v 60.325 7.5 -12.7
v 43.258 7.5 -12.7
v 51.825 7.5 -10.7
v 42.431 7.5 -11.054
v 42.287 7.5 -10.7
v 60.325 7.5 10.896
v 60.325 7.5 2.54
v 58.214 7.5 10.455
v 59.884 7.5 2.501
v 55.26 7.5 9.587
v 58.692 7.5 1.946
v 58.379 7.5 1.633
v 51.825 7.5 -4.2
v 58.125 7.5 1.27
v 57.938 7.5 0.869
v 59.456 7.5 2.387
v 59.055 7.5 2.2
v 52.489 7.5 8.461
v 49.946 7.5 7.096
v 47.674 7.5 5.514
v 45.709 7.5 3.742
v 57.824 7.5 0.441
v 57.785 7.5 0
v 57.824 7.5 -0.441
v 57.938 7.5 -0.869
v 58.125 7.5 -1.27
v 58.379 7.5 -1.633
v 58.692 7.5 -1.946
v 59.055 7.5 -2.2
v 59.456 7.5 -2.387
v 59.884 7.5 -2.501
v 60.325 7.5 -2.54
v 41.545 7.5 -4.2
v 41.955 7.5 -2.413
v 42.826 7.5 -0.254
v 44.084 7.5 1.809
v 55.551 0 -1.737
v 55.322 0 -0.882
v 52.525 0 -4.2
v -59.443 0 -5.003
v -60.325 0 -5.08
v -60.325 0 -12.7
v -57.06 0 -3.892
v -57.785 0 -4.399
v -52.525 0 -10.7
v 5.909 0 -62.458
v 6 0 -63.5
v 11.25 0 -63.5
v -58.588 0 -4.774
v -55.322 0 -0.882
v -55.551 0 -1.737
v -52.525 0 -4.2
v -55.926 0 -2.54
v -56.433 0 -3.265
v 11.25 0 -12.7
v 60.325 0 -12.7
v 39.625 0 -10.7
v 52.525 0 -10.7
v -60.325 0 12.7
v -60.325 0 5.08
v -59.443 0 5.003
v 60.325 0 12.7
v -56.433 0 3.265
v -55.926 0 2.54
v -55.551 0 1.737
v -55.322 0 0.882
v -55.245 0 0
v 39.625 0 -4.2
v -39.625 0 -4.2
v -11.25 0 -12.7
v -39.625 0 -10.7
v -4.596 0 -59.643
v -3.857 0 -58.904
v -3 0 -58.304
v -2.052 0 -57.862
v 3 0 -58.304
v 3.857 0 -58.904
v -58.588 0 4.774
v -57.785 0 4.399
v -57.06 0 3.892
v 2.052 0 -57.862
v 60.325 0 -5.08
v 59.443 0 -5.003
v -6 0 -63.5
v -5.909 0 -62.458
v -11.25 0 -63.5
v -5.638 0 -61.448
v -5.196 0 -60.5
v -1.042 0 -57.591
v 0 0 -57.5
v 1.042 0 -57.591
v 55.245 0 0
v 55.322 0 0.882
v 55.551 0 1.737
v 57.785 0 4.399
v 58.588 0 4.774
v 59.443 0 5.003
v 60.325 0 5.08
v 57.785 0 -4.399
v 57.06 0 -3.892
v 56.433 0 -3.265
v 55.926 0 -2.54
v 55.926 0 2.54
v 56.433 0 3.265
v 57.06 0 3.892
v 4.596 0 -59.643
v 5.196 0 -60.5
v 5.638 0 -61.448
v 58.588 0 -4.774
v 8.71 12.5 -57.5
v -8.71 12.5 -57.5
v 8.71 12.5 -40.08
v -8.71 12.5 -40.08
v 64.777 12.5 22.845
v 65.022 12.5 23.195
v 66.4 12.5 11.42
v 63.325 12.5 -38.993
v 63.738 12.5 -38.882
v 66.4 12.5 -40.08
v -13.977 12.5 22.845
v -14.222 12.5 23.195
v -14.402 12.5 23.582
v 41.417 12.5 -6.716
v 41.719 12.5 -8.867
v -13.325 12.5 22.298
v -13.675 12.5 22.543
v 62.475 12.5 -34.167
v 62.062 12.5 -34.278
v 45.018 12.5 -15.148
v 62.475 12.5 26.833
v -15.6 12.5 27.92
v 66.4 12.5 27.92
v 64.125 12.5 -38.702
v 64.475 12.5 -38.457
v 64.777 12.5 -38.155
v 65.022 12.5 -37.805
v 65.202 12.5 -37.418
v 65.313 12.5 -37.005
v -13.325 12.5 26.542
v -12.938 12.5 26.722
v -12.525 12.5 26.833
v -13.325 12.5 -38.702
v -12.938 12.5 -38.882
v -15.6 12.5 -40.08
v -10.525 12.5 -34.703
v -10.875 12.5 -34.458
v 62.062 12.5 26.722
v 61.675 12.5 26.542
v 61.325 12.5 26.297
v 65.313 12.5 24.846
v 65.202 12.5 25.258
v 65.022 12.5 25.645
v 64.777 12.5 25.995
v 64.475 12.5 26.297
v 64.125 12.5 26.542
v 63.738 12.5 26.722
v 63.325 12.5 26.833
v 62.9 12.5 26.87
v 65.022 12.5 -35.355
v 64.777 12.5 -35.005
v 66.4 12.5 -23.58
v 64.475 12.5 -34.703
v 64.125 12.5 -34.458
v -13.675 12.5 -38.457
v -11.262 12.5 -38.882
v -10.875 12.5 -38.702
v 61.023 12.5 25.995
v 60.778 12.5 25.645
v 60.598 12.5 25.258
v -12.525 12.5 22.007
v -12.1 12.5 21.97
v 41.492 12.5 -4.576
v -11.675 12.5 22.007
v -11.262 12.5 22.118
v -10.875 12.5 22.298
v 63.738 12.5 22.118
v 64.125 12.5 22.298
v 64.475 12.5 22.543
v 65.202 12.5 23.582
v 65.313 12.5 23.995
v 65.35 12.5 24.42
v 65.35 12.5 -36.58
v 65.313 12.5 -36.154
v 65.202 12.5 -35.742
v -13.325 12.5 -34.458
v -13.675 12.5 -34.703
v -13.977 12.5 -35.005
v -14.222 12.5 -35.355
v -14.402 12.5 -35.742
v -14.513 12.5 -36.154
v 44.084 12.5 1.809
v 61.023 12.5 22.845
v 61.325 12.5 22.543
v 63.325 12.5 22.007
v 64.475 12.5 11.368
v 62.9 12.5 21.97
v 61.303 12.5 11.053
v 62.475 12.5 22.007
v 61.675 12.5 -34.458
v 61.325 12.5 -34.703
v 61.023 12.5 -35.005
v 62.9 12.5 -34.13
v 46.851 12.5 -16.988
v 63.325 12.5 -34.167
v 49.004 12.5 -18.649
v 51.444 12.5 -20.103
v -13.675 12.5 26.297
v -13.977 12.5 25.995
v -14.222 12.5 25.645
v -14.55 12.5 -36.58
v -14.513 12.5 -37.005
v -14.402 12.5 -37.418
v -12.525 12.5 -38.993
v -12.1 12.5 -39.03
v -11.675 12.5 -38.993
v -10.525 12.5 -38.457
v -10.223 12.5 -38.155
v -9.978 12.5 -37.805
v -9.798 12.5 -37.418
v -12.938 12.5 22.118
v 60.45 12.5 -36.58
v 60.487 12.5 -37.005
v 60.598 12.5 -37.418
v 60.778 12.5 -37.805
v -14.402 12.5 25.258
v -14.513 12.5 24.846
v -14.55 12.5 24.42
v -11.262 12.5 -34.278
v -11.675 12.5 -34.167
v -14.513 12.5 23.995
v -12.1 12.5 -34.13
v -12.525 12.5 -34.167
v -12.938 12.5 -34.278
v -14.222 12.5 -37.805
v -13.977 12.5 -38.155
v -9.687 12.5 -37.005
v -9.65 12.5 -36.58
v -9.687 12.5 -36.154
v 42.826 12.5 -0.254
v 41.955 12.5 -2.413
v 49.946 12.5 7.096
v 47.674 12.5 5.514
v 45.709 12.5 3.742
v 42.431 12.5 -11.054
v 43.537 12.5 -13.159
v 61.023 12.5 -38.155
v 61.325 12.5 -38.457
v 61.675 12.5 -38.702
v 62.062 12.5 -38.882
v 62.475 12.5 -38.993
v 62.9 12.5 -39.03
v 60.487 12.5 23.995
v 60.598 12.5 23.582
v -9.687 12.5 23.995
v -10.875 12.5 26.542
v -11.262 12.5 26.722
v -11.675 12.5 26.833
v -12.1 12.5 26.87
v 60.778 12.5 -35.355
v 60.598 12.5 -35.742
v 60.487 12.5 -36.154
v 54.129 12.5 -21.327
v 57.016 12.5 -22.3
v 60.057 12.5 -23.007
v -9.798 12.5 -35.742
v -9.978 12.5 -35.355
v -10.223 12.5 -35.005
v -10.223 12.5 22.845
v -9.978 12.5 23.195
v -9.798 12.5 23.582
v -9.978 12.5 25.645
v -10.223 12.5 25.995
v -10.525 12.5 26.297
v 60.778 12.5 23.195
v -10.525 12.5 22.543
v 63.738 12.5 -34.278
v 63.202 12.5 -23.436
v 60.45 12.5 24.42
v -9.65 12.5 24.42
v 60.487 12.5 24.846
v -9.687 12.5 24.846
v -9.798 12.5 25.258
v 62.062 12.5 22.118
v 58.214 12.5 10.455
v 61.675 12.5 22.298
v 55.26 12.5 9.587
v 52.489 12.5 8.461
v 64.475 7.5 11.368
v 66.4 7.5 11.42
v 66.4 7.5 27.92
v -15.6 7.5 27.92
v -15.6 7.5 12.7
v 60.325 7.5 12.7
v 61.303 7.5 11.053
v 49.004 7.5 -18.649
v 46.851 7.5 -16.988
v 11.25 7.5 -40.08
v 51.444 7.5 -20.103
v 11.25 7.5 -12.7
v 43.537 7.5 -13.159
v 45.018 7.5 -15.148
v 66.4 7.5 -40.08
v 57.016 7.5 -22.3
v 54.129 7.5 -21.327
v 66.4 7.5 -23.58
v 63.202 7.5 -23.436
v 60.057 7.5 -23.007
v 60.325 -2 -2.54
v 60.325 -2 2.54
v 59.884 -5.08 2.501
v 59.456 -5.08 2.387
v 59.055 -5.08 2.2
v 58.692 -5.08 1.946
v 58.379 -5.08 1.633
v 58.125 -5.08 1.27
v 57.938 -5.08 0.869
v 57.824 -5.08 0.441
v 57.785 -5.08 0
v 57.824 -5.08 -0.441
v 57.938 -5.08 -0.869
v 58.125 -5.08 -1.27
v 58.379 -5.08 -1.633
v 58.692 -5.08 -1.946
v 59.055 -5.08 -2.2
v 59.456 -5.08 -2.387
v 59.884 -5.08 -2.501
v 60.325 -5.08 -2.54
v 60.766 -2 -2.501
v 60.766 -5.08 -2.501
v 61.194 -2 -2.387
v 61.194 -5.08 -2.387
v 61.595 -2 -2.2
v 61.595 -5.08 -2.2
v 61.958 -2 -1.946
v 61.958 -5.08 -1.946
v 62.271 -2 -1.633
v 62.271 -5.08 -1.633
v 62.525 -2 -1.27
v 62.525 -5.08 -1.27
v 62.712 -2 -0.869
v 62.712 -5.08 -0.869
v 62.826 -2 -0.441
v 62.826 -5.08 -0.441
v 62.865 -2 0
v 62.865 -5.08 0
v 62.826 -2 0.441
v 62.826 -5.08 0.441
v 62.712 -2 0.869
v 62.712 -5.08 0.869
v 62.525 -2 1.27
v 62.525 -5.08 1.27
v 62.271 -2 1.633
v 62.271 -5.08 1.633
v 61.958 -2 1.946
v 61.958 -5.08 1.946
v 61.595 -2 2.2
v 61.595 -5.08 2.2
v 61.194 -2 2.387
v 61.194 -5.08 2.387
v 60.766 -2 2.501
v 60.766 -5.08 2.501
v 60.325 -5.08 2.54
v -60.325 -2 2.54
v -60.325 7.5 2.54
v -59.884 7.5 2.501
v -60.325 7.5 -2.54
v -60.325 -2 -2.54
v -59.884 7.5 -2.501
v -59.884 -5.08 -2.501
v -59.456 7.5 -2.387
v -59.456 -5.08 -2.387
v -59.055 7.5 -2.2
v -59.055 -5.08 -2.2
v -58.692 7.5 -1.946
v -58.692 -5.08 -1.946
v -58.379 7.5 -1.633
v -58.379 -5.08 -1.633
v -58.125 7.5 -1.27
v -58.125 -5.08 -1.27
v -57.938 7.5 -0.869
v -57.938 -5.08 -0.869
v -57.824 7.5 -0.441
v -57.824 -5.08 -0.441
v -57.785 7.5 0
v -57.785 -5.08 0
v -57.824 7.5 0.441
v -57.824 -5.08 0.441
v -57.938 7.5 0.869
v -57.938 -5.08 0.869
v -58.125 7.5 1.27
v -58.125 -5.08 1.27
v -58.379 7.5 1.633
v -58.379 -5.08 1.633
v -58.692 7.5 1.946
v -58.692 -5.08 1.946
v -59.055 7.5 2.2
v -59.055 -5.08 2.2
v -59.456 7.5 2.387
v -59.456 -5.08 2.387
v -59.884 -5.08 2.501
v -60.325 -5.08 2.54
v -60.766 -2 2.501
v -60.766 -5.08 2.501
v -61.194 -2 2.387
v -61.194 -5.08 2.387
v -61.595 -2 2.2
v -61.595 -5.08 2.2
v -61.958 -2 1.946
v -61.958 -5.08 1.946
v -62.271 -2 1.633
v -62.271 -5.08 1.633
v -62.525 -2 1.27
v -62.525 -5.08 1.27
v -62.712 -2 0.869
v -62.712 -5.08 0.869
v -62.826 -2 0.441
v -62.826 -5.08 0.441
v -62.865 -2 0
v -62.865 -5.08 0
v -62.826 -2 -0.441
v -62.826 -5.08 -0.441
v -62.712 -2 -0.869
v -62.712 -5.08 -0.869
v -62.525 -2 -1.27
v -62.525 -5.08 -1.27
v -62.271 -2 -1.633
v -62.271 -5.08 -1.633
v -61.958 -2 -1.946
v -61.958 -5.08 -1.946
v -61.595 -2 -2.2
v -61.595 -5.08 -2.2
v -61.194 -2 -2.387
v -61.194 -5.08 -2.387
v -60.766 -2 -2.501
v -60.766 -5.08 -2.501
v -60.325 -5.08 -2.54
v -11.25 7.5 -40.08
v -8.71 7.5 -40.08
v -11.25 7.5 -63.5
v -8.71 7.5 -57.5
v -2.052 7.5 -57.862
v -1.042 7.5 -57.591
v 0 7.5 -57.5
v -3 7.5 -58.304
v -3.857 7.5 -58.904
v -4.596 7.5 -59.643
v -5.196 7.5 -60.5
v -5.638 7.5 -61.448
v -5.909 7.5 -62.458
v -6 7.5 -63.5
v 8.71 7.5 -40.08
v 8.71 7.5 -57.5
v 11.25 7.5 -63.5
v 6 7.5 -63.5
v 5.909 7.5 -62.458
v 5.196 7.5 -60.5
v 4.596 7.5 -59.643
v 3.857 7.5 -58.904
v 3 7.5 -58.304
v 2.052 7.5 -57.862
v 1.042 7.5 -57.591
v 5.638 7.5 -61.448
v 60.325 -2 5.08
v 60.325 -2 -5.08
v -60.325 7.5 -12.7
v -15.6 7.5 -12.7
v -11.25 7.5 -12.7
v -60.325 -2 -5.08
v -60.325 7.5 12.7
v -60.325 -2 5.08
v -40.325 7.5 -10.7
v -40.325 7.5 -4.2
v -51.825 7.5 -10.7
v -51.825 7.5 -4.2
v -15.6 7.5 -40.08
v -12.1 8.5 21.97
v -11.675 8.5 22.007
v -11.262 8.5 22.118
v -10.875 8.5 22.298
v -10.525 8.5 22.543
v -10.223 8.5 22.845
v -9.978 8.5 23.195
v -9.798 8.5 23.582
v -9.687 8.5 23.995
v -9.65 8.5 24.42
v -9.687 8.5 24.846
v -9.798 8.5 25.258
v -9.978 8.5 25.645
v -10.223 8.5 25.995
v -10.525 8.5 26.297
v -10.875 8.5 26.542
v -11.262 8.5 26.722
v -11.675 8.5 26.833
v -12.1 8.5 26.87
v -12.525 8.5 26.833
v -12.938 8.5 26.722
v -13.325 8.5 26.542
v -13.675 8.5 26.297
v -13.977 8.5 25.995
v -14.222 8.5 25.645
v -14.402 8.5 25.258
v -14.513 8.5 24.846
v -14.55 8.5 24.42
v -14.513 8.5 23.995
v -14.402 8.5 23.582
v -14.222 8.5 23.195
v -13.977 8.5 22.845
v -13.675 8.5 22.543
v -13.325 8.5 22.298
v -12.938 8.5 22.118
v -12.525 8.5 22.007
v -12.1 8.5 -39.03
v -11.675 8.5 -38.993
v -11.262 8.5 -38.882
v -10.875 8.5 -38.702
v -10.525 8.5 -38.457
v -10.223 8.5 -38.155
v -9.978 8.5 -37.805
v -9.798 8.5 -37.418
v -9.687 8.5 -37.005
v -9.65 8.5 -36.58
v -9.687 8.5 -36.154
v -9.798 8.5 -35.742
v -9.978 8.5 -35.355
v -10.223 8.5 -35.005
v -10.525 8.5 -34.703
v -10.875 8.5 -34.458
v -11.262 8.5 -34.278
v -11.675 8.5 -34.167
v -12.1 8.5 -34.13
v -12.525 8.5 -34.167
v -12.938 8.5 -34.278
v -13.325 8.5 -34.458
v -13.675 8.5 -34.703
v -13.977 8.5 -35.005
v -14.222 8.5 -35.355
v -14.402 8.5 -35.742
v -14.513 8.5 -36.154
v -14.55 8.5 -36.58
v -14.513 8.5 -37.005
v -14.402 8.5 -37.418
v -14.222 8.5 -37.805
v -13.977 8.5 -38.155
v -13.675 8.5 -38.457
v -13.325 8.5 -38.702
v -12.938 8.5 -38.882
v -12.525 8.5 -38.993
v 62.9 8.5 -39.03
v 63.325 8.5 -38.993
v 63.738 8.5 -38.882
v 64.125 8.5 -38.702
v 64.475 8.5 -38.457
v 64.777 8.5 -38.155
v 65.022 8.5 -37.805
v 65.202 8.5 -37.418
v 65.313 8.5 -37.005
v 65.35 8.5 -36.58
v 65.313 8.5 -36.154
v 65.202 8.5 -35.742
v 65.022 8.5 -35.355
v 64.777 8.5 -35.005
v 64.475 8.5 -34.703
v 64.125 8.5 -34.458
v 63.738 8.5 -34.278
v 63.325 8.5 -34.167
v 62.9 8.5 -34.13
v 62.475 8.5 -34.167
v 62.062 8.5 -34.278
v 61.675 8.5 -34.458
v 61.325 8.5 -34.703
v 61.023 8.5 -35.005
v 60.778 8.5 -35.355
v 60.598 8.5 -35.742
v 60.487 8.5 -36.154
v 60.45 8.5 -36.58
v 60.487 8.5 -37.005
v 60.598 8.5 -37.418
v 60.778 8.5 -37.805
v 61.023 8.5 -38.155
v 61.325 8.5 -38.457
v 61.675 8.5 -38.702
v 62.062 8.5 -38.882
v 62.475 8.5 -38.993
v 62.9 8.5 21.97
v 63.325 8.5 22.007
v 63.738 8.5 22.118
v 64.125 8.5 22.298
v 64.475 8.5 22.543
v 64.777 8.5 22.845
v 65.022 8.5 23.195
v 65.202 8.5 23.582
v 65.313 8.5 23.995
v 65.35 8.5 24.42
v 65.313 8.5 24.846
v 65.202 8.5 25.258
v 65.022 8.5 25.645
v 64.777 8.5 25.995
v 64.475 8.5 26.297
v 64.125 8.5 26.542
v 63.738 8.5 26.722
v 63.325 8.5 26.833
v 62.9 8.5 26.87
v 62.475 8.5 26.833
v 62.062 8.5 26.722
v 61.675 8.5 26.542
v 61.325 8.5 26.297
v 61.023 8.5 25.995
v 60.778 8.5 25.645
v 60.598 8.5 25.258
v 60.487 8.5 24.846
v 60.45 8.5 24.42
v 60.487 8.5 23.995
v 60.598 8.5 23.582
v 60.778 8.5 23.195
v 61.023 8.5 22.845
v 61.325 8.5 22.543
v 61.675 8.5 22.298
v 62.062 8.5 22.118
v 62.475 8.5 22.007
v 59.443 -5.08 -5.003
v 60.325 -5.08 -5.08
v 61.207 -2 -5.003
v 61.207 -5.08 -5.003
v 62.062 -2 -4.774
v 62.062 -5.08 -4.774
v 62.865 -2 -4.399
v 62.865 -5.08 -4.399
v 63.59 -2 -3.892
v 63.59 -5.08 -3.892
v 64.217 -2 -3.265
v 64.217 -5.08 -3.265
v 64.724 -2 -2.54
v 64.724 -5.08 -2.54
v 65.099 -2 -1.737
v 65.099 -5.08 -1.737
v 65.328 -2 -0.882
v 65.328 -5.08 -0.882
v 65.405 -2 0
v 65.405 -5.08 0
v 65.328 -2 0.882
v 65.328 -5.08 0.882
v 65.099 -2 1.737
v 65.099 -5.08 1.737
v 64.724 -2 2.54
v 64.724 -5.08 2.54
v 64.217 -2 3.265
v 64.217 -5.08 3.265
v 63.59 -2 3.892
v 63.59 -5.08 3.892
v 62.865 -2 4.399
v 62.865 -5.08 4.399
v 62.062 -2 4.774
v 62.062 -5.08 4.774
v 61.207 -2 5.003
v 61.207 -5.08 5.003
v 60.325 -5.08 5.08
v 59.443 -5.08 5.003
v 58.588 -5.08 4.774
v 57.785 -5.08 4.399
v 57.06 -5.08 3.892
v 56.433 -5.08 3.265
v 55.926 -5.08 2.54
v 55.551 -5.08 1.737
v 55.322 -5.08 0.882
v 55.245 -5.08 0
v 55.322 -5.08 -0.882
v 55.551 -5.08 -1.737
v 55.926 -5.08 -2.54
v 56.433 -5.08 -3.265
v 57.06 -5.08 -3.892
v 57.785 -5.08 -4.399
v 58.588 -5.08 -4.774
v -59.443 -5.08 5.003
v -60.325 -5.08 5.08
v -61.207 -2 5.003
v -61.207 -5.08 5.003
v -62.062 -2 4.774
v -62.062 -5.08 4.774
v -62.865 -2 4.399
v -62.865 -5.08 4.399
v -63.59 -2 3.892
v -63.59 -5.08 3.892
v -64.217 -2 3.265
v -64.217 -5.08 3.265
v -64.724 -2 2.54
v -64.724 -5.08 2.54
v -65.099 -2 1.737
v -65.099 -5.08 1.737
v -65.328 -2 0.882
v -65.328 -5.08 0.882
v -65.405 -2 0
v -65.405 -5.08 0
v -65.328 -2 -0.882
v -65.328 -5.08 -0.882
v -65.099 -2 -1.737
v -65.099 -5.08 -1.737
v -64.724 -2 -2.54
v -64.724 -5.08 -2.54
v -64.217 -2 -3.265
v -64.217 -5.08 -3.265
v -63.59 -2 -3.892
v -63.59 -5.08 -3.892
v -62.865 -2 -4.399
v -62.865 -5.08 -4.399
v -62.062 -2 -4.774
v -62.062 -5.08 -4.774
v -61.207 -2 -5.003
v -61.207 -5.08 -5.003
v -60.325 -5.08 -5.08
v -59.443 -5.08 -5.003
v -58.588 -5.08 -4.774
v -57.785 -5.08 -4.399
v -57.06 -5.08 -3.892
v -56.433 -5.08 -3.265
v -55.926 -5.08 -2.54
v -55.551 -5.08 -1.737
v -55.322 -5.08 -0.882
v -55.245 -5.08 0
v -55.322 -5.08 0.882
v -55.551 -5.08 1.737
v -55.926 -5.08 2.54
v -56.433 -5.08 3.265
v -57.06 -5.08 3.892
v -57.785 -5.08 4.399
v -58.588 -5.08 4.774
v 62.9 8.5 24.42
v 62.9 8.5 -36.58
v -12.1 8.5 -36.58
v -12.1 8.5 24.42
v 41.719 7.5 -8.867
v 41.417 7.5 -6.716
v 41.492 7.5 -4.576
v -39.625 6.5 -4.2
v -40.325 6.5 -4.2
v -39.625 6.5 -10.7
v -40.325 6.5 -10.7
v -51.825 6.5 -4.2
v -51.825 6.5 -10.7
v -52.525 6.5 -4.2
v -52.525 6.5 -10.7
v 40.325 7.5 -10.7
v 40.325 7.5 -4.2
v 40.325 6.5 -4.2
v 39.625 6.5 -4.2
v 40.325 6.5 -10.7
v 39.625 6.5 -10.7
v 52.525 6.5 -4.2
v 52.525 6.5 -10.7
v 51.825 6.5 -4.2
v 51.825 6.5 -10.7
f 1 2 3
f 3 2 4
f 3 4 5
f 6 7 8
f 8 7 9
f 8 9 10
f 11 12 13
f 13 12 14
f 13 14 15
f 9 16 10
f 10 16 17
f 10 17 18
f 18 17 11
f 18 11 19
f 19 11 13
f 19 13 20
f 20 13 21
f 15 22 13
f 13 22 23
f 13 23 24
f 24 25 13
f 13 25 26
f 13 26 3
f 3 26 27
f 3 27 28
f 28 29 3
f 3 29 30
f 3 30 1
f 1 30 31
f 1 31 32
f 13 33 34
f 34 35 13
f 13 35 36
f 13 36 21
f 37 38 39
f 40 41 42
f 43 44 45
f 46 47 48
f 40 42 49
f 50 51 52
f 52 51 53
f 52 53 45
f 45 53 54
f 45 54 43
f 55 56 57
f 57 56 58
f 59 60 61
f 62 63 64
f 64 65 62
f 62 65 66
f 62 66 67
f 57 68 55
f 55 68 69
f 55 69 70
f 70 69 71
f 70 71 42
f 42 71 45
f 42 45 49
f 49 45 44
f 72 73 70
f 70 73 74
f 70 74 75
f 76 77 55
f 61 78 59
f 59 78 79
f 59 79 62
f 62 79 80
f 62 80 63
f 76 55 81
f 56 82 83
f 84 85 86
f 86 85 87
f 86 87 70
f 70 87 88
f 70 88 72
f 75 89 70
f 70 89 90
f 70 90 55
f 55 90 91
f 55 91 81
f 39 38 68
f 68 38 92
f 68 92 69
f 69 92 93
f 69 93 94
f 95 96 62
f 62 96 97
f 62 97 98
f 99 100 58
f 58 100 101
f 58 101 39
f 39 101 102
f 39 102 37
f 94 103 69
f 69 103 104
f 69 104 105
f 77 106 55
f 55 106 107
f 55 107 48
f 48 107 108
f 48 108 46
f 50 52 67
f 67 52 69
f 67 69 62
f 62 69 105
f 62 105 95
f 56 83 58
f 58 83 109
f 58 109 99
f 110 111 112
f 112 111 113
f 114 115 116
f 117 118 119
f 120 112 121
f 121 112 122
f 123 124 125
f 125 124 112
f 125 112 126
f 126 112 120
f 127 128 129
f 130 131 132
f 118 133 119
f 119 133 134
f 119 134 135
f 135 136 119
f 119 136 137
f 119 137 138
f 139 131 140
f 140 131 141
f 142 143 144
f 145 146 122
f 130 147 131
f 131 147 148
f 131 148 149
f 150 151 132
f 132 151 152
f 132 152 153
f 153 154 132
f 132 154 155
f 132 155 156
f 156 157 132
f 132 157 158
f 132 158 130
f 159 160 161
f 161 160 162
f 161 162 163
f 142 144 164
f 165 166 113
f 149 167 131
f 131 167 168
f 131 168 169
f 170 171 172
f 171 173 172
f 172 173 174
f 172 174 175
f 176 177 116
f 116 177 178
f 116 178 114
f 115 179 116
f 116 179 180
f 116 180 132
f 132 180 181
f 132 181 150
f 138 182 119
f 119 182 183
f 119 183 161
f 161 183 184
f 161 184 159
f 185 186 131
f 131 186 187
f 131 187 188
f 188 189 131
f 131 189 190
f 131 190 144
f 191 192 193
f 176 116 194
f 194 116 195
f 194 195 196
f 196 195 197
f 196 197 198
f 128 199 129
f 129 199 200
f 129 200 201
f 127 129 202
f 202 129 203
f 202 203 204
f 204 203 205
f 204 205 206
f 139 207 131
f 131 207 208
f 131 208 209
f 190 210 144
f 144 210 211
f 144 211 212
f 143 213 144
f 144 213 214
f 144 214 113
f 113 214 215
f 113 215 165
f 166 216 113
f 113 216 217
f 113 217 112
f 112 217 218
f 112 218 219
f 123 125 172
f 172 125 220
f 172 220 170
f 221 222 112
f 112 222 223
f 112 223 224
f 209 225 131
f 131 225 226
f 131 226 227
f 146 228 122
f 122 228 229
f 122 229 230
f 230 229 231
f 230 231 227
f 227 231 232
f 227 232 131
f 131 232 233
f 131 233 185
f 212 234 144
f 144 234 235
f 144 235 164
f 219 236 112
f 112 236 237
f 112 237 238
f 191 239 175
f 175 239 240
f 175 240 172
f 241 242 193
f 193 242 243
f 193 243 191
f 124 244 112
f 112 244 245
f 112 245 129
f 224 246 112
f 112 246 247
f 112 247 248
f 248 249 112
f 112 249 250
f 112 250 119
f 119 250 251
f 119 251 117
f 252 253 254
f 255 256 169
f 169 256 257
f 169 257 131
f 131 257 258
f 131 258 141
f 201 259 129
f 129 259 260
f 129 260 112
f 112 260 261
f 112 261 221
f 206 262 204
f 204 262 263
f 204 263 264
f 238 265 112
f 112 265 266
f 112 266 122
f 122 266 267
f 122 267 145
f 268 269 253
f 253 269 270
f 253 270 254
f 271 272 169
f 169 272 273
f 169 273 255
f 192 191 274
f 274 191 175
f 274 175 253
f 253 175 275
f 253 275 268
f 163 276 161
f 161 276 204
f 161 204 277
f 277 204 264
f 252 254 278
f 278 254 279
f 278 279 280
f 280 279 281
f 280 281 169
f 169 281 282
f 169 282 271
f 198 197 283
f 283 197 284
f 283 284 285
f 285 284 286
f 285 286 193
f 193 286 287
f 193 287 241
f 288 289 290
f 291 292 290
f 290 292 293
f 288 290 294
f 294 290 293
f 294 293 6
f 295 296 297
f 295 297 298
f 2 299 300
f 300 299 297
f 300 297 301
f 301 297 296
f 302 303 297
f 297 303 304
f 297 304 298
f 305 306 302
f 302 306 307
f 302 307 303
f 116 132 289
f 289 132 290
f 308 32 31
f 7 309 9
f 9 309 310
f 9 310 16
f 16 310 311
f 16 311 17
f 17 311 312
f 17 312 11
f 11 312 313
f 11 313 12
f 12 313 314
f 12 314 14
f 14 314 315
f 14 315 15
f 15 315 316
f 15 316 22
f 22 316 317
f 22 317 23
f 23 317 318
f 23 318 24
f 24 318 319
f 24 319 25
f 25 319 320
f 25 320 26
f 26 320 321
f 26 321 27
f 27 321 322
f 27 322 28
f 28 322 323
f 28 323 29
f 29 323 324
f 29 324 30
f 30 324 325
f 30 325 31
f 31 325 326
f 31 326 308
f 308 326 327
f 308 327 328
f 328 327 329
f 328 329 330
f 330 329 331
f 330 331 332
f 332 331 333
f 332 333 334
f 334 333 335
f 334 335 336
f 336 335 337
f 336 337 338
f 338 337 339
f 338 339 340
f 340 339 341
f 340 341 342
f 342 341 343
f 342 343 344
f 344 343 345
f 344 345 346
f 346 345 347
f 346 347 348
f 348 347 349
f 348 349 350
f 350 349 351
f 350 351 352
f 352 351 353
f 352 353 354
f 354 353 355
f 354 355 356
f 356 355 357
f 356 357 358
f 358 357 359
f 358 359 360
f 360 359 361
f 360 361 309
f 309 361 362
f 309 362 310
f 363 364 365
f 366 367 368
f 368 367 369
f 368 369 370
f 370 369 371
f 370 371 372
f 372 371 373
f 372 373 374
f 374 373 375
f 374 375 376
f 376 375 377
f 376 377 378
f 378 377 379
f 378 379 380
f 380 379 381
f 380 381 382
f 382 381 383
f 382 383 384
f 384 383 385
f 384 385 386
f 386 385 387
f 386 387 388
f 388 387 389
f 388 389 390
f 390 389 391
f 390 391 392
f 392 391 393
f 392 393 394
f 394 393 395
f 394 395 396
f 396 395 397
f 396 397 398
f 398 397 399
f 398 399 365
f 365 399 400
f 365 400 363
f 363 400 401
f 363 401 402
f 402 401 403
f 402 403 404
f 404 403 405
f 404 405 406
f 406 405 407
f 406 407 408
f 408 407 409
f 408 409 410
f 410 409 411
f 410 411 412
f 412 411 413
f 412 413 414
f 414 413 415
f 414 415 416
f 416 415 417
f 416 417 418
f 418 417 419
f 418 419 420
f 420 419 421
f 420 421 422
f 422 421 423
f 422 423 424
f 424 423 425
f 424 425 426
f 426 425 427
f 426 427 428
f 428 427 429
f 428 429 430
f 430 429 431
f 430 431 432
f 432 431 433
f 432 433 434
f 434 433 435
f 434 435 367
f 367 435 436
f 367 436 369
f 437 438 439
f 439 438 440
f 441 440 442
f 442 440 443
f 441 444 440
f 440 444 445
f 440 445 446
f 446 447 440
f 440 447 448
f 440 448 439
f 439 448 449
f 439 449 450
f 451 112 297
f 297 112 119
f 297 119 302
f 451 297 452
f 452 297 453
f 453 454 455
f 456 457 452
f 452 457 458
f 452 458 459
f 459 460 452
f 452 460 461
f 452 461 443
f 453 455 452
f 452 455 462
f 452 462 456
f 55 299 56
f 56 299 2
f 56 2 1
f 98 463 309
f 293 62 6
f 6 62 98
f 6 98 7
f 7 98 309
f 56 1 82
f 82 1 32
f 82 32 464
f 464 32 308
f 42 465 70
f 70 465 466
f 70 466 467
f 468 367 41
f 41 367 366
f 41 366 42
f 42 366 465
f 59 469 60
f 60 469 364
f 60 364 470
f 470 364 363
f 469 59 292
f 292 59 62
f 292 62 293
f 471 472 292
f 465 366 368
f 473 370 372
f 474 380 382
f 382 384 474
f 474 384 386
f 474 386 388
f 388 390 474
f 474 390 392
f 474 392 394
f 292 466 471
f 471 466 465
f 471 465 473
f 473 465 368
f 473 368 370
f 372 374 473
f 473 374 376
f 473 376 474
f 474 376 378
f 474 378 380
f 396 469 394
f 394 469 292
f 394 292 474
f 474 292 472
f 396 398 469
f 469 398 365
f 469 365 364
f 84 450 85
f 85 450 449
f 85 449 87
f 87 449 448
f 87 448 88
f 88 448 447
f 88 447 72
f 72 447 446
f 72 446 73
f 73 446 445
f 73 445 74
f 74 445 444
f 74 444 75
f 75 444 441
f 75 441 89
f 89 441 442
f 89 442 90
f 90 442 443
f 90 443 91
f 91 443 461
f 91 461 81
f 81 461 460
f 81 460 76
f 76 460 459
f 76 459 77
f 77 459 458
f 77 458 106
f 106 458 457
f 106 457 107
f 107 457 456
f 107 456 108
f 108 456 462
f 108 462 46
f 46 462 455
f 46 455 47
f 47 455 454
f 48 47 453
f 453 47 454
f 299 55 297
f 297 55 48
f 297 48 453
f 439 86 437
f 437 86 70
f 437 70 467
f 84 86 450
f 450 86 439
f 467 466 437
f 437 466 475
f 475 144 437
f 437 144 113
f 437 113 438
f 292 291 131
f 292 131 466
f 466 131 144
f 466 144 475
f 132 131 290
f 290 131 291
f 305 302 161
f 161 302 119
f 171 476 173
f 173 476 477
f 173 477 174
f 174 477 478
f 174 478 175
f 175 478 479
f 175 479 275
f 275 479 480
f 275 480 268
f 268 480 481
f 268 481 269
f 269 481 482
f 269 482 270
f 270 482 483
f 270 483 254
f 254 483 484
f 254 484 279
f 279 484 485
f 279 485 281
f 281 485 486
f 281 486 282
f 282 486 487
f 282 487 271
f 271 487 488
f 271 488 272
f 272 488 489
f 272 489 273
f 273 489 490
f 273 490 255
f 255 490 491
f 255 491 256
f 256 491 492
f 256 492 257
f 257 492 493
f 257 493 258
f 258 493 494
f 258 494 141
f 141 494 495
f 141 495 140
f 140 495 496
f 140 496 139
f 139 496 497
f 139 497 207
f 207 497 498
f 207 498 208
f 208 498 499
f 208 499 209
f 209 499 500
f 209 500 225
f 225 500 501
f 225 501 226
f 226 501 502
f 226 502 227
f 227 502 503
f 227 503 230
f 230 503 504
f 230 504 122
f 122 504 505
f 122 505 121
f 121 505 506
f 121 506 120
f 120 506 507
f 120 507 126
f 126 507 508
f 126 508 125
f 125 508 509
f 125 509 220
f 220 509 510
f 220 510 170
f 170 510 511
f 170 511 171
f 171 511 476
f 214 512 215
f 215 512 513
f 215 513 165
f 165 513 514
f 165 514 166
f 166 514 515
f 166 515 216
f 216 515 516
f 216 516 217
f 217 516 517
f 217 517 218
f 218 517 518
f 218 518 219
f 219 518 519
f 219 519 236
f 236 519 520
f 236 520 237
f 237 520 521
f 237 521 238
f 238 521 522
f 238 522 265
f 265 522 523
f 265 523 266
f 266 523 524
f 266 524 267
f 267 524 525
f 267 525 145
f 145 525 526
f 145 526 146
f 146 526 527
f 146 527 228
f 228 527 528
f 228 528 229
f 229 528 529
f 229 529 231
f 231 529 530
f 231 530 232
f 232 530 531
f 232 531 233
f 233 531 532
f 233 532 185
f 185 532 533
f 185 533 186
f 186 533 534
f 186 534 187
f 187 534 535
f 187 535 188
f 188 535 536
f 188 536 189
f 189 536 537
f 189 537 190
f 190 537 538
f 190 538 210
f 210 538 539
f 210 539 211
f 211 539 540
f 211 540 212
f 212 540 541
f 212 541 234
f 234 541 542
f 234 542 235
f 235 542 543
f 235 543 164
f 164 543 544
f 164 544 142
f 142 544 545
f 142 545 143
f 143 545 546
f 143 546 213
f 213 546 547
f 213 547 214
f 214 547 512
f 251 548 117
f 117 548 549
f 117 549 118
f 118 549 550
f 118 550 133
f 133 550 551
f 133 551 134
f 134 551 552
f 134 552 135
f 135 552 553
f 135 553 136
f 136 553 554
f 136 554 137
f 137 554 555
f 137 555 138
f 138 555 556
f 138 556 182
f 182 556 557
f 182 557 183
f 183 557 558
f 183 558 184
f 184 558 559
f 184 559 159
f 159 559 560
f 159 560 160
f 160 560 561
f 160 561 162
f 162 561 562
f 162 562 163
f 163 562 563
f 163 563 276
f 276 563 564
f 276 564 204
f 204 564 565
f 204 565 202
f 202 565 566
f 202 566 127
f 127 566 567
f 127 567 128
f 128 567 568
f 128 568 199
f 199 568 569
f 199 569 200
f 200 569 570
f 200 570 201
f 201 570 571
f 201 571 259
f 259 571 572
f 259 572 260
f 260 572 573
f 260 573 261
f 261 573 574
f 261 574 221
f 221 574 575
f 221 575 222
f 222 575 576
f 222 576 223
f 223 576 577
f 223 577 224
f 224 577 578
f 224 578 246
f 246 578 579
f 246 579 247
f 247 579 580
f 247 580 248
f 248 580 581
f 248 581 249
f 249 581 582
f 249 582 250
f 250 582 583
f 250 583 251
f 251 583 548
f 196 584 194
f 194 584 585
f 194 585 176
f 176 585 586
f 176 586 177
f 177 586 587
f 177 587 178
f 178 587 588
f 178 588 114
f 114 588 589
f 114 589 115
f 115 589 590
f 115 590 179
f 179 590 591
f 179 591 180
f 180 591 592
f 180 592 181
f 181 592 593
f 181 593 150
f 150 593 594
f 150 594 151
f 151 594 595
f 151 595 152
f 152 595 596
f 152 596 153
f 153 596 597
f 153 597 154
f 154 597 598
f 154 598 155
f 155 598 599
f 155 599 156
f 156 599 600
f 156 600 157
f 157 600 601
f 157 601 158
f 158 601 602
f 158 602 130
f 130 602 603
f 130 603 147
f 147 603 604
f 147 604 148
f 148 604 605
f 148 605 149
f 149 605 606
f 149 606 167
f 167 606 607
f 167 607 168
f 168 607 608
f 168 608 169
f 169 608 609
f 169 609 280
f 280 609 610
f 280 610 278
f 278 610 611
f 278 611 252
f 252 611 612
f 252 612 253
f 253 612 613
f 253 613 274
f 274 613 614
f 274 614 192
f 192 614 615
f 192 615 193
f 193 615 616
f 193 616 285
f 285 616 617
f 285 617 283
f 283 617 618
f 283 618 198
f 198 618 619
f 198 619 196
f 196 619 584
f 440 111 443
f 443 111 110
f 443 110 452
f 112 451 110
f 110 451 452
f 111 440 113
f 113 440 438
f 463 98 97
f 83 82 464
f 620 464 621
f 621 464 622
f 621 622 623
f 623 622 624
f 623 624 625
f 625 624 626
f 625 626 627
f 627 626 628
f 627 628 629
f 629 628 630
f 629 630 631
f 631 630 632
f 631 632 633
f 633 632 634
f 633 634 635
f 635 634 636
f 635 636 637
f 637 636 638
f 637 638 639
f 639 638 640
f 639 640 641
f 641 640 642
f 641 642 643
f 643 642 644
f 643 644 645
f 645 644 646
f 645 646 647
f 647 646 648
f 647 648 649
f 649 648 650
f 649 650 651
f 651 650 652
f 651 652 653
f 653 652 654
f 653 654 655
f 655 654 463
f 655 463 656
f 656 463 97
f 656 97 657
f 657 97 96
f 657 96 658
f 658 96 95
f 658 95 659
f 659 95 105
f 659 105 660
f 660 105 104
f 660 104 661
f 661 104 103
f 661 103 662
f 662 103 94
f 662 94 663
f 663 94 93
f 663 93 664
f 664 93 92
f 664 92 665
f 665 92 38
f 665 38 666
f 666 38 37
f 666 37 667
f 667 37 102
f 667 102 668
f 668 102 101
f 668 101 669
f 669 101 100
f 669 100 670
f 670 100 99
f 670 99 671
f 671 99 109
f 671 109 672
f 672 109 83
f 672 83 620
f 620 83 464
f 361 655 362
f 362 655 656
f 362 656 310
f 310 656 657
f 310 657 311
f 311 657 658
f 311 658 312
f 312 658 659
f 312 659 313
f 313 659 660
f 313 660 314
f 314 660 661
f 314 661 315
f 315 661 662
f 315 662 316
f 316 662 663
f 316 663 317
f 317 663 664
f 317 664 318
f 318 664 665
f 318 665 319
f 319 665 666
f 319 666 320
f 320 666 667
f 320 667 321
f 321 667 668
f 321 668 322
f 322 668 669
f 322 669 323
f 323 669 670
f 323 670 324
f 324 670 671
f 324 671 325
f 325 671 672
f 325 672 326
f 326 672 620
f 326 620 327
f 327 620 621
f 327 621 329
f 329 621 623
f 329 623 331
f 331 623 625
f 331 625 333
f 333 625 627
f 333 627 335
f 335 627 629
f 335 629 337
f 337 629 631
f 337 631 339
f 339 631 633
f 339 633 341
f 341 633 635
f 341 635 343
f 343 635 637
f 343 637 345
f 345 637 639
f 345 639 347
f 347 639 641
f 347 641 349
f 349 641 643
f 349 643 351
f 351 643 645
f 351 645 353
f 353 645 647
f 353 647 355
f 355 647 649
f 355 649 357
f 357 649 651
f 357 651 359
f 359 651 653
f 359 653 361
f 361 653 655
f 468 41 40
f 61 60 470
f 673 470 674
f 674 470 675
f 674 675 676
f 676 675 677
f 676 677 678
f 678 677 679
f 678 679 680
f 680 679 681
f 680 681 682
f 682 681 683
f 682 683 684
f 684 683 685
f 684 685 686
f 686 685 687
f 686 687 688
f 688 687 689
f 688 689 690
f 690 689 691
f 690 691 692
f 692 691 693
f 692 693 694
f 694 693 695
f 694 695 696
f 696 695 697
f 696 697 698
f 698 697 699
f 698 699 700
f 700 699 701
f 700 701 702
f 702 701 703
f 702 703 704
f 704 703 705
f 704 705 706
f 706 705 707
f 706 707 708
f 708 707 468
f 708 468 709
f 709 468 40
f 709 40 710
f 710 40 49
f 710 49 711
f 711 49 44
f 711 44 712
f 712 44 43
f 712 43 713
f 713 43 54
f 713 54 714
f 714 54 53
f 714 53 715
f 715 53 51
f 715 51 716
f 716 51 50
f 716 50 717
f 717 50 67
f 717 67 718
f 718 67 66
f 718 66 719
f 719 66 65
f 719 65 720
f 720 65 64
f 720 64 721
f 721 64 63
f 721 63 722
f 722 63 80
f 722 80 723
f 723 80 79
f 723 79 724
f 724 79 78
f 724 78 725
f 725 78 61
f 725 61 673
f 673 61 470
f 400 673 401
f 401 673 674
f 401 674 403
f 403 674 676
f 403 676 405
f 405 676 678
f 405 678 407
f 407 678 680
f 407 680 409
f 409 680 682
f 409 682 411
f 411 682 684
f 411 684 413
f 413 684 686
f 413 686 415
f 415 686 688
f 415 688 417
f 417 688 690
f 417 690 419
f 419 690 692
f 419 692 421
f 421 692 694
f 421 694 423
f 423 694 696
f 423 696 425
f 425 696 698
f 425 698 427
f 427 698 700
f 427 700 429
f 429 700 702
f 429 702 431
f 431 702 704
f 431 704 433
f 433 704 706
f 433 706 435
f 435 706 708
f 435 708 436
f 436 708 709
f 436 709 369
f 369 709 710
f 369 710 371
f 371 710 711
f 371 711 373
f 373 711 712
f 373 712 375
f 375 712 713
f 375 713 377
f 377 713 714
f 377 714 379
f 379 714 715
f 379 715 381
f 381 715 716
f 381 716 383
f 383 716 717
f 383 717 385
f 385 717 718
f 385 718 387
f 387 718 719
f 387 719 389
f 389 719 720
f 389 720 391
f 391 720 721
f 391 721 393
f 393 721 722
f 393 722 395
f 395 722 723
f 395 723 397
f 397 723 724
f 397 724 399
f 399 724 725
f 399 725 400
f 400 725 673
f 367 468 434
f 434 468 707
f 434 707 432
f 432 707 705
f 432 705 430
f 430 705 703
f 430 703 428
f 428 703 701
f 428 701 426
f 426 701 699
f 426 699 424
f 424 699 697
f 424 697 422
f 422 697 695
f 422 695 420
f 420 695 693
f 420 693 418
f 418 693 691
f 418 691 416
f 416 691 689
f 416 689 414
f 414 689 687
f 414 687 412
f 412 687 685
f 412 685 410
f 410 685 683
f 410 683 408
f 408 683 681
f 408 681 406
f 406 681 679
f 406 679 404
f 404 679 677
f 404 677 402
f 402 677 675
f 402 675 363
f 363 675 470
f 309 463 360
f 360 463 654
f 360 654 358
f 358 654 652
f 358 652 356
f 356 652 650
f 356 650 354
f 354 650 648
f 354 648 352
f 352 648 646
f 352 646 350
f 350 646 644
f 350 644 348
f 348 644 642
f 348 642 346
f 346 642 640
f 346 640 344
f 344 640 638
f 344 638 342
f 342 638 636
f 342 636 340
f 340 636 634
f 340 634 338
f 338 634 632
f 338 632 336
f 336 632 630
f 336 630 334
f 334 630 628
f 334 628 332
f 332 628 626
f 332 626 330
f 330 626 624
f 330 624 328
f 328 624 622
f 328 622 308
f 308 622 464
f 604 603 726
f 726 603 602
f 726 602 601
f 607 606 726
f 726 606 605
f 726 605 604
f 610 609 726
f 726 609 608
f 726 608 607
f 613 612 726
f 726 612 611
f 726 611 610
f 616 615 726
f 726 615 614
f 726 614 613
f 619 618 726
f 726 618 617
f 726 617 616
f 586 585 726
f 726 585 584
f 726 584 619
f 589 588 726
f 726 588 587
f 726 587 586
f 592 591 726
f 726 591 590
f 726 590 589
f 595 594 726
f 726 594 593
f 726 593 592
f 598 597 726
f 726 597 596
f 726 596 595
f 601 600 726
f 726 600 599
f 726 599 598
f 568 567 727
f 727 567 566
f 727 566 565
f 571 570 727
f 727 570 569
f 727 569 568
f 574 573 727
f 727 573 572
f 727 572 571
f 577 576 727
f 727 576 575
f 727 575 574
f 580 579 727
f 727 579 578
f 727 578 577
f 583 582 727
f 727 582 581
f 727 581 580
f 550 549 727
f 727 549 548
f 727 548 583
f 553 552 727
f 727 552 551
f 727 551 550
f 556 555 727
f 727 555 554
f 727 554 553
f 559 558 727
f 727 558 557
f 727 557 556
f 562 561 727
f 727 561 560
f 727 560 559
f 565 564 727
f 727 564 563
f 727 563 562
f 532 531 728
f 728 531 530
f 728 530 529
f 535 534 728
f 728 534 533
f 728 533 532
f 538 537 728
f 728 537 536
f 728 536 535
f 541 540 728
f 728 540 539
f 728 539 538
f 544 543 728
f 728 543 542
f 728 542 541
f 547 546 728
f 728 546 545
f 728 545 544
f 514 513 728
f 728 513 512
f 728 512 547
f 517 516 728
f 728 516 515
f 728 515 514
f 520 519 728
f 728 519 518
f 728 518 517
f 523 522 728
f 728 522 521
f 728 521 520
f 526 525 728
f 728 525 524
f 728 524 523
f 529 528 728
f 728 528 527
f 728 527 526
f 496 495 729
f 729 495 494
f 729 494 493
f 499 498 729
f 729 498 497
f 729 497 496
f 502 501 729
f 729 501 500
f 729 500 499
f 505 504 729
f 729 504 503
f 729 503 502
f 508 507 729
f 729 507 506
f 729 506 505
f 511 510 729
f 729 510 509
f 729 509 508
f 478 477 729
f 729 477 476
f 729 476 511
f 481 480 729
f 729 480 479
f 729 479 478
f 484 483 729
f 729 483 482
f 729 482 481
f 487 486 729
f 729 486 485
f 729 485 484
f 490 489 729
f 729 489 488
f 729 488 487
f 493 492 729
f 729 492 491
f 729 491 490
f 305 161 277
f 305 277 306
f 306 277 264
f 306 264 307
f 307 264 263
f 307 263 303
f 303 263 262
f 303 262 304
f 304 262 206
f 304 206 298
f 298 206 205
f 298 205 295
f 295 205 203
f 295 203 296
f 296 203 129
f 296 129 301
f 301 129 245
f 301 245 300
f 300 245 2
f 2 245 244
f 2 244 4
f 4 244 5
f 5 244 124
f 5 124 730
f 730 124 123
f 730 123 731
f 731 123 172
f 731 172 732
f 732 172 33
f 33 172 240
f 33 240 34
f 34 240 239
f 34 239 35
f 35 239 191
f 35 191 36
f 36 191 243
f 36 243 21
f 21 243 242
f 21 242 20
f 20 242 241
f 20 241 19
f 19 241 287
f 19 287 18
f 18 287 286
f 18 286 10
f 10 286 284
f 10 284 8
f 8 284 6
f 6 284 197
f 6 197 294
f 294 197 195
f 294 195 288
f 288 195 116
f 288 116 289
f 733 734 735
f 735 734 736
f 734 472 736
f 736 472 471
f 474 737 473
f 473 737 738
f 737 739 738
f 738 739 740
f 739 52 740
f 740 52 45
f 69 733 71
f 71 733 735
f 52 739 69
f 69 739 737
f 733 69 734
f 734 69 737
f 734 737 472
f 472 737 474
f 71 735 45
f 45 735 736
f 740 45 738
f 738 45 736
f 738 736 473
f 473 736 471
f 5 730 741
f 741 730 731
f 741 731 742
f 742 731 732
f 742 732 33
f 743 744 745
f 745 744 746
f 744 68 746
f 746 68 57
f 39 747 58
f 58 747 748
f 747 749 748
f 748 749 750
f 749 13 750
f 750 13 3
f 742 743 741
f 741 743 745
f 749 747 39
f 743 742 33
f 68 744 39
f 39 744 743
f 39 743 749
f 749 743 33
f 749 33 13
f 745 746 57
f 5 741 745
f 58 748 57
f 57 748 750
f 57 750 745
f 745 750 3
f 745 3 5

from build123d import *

# Parameters (mm, degrees)
BOSS_EXTRUDE1_DEPTH = 7.5
BOSS_EXTRUDE2_DEPTH = 7.5
SKETCH6_W           = 82
SKETCH6_H           = 68
SKETCH6_R           = 2.45
BOSS_EXTRUDE4_DEPTH = 5
SKETCH7_W           = 17.42019984
SKETCH7_H           = 17.42019984
BOSS_EXTRUDE5_DEPTH = 5
BOSS_EXTRUDE6_START = -5.08
BOSS_EXTRUDE6_DEPTH = 5.08
CUT_EXTRUDE1_START  = -2
CUT_EXTRUDE1_DEPTH  = 2
SKETCH6_3_R         = 2.45
BOSS_EXTRUDE7_DEPTH = 1
SKETCH8_RX          = 25
SKETCH8_RY          = 17.5
CUT_EXTRUDE4_DEPTH  = 5
CUT_EXTRUDE5_START  = -2
SKETCH9_W           = 0.7
SKETCH9_H           = 6.5
SKETCH9_W_2         = 5.75
SKETCH9_H_2         = 1
CUT_EXTRUDE5_DEPTH  = 6.5


with BuildPart() as part:
    # Sketch3 → Boss-Extrude1 (new body)
    with BuildSketch(Plane(origin=(0, 0, 0), x_dir=(1, 0, 0), z_dir=(0, 1, 0))):
        with BuildLine():
            Line((-60.325, -12.7), (60.325, -12.7))
            Line((60.325, -12.7), (60.325, -2.54))
            ThreePointArc((60.325, -2.54), (57.785, 0), (60.325, 2.54))
            Line((60.325, 2.54), (60.325, 12.7))
            Line((60.325, 12.7), (-60.325, 12.7))
            Line((-60.325, 12.7), (-60.325, 2.54))
            ThreePointArc((-60.325, 2.54), (-57.785, 0), (-60.325, -2.54))
            Line((-60.325, -2.54), (-60.325, -12.7))
        make_face()
    extrude(amount=BOSS_EXTRUDE1_DEPTH)

    # Sketch5 → Boss-Extrude2 (add)
    with BuildSketch(Plane(origin=(0, 7.5, 0), x_dir=(1, 0, 0), z_dir=(0, 1, 0))):
        with BuildLine():
            Line((-11.25, 63.5), (-11.25, 12.7))
            Line((-11.25, 12.7), (11.25, 12.7))
            Line((11.25, 12.7), (11.25, 63.5))
            Line((11.25, 63.5), (6, 63.5))
            ThreePointArc((6, 63.5), (0, 57.5), (-6, 63.5))
            Line((-6, 63.5), (-11.25, 63.5))
        make_face()
    extrude(amount=-BOSS_EXTRUDE2_DEPTH)

    # Sketch6 → Boss-Extrude4 (add)
    with BuildSketch(Plane(origin=(0, 7.5, 0), x_dir=(1, 0, 0), z_dir=(0, 1, 0))):
        with Locations((25.4, 6.07980016)):
            Rectangle(SKETCH6_W, SKETCH6_H)
        with Locations(Location((-12.1, -24.42019984, 0), (0, 0, 270))):
            Circle(SKETCH6_R, mode=Mode.SUBTRACT)
        with Locations(Location((-12.1, 36.57980016, 0), (0, 0, 90))):
            Circle(SKETCH6_R, mode=Mode.SUBTRACT)
        with Locations(Location((62.9, 36.57980016, 0), (0, 0, 270))):
            Circle(SKETCH6_R, mode=Mode.SUBTRACT)
        with Locations(Location((62.9, -24.42019984, 0), (0, 0, 90))):
            Circle(SKETCH6_R, mode=Mode.SUBTRACT)
    extrude(amount=BOSS_EXTRUDE4_DEPTH)

    # Sketch7 → Boss-Extrude5 (add)
    with BuildSketch(Plane(origin=(0, 7.5, 0), x_dir=(1, 0, 0), z_dir=(0, 1, 0))):
        with Locations((0, 48.78990008)):
            Rectangle(SKETCH7_W, SKETCH7_H)
    extrude(amount=BOSS_EXTRUDE5_DEPTH)

    # Sketch3<3> → Boss-Extrude6 (add)
    with BuildSketch(Plane(origin=(0, 0, 0), x_dir=(1, 0, 0), z_dir=(0, 1, 0)).offset(BOSS_EXTRUDE6_START)):
        with BuildLine():
            ThreePointArc((-60.325, 5.08), (-65.405, 0), (-60.325, -5.08))
            Line((-60.325, -5.08), (-60.325, -2.54))
            ThreePointArc((-60.325, -2.54), (-62.865, 0), (-60.325, 2.54))
            Line((-60.325, 2.54), (-60.325, 5.08))
        make_face()
        with BuildLine():
            Line((-60.325, -2.54), (-60.325, -5.08))
            ThreePointArc((-60.325, -5.08), (-56.732897552, -3.592102448), (-55.245, 0))
            ThreePointArc((-55.245, 0), (-56.732897552, 3.592102448), (-60.325, 5.08))
            Line((-60.325, 5.08), (-60.325, 2.54))
            ThreePointArc((-60.325, 2.54), (-58.528948776, 1.796051224), (-57.785, 0))
            ThreePointArc((-57.785, 0), (-58.528948776, -1.796051224), (-60.325, -2.54))
        make_face()
        with BuildLine():
            ThreePointArc((60.325, 5.08), (55.245, 0), (60.325, -5.08))
            Line((60.325, -5.08), (60.325, -2.54))
            ThreePointArc((60.325, -2.54), (57.785, 0), (60.325, 2.54))
            Line((60.325, 2.54), (60.325, 5.08))
        make_face()
        with BuildLine():
            Line((60.325, -2.54), (60.325, -5.08))
            ThreePointArc((60.325, -5.08), (63.917102448, -3.592102448), (65.405, 0))
            ThreePointArc((65.405, 0), (63.917102448, 3.592102448), (60.325, 5.08))
            Line((60.325, 5.08), (60.325, 2.54))
            ThreePointArc((60.325, 2.54), (62.121051224, 1.796051224), (62.865, 0))
            ThreePointArc((62.865, 0), (62.121051224, -1.796051224), (60.325, -2.54))
        make_face()
    extrude(amount=BOSS_EXTRUDE6_DEPTH)

    # Sketch3<4> → Cut-Extrude1 (cut)
    with BuildSketch(Plane(origin=(0, 0, 0), x_dir=(1, 0, 0), z_dir=(0, 1, 0)).offset(CUT_EXTRUDE1_START)):
        with BuildLine():
            ThreePointArc((-60.325, 5.08), (-65.405, 0), (-60.325, -5.08))
            Line((-60.325, -5.08), (-60.325, -2.54))
            ThreePointArc((-60.325, -2.54), (-62.865, 0), (-60.325, 2.54))
            Line((-60.325, 2.54), (-60.325, 5.08))
        make_face()
    cut_extrude1 = extrude(amount=CUT_EXTRUDE1_DEPTH, mode=Mode.SUBTRACT)

    # Mirror2: Cut-Extrude1 across plane
    add(cut_extrude1.mirror(Plane(origin=(0, 0, 0), x_dir=(0, 0, 1), z_dir=(1, 0, 0))), mode=Mode.SUBTRACT)

    # Sketch6<3> → Boss-Extrude7 (add)
    with BuildSketch(Plane(origin=(0, 7.5, 0), x_dir=(1, 0, 0), z_dir=(0, 1, 0))):
        with Locations(Location((-12.1, -24.42019984, 0), (0, 0, 270))):
            Circle(SKETCH6_3_R)
        with BuildLine():
            ThreePointArc((-9.65, 36.57980016), (-10.089403074, 37.97980016), (-11.25, 38.877625219))
            Line((-11.25, 38.877625219), (-11.25, 34.281975101))
            ThreePointArc((-11.25, 34.281975101), (-10.089403074, 35.17980016), (-9.65, 36.57980016))
        make_face()
        with BuildLine():
            Line((-11.25, 34.281975101), (-11.25, 38.877625219))
            ThreePointArc((-11.25, 38.877625219), (-14.55, 36.57980016), (-11.25, 34.281975101))
        make_face()
        with Locations(Location((62.9, 36.57980016, 0), (0, 0, 270))):
            Circle(SKETCH6_3_R)
        with Locations(Location((62.9, -24.42019984, 0), (0, 0, 90))):
            Circle(SKETCH6_3_R)
    extrude(amount=BOSS_EXTRUDE7_DEPTH)

    # Sketch8 → Cut-Extrude4 (cut)
    with BuildSketch(Plane(origin=(0, 12.5, 0), x_dir=(1, 0, 0), z_dir=(0, 1, 0))):
        with Locations(Location((66.4, 6.07980016), (0, 0, -180))):
            Ellipse(SKETCH8_RX, SKETCH8_RY)
    extrude(amount=-CUT_EXTRUDE4_DEPTH, mode=Mode.SUBTRACT)

    # Sketch9 → Cut-Extrude5 (cut)
    with BuildSketch(Plane(origin=(0, 0, -12.7), x_dir=(-1, 0, 0), z_dir=(0, 0, -1)).offset(CUT_EXTRUDE5_START)):
        with Locations((39.975, 3.25)):
            Rectangle(SKETCH9_W, SKETCH9_H)
        Polygon((51.825, 0), (51.825, 6.5), (46.075, 6.5), (40.325, 6.5), (40.325, 0), align=None)
        with Locations((52.175, 3.25)):
            Rectangle(SKETCH9_W, SKETCH9_H)
        with Locations((48.95, 7)):
            Rectangle(SKETCH9_W_2, SKETCH9_H_2)
        with Locations((43.2, 7)):
            Rectangle(SKETCH9_W_2, SKETCH9_H_2)
    cut_extrude5 = extrude(amount=-CUT_EXTRUDE5_DEPTH, mode=Mode.SUBTRACT)

    # Mirror3: Cut-Extrude5 across plane
    add(cut_extrude5.mirror(Plane(origin=(0, 0, 0), x_dir=(0, 0, 1), z_dir=(1, 0, 0))), mode=Mode.SUBTRACT)


solid = part.part
